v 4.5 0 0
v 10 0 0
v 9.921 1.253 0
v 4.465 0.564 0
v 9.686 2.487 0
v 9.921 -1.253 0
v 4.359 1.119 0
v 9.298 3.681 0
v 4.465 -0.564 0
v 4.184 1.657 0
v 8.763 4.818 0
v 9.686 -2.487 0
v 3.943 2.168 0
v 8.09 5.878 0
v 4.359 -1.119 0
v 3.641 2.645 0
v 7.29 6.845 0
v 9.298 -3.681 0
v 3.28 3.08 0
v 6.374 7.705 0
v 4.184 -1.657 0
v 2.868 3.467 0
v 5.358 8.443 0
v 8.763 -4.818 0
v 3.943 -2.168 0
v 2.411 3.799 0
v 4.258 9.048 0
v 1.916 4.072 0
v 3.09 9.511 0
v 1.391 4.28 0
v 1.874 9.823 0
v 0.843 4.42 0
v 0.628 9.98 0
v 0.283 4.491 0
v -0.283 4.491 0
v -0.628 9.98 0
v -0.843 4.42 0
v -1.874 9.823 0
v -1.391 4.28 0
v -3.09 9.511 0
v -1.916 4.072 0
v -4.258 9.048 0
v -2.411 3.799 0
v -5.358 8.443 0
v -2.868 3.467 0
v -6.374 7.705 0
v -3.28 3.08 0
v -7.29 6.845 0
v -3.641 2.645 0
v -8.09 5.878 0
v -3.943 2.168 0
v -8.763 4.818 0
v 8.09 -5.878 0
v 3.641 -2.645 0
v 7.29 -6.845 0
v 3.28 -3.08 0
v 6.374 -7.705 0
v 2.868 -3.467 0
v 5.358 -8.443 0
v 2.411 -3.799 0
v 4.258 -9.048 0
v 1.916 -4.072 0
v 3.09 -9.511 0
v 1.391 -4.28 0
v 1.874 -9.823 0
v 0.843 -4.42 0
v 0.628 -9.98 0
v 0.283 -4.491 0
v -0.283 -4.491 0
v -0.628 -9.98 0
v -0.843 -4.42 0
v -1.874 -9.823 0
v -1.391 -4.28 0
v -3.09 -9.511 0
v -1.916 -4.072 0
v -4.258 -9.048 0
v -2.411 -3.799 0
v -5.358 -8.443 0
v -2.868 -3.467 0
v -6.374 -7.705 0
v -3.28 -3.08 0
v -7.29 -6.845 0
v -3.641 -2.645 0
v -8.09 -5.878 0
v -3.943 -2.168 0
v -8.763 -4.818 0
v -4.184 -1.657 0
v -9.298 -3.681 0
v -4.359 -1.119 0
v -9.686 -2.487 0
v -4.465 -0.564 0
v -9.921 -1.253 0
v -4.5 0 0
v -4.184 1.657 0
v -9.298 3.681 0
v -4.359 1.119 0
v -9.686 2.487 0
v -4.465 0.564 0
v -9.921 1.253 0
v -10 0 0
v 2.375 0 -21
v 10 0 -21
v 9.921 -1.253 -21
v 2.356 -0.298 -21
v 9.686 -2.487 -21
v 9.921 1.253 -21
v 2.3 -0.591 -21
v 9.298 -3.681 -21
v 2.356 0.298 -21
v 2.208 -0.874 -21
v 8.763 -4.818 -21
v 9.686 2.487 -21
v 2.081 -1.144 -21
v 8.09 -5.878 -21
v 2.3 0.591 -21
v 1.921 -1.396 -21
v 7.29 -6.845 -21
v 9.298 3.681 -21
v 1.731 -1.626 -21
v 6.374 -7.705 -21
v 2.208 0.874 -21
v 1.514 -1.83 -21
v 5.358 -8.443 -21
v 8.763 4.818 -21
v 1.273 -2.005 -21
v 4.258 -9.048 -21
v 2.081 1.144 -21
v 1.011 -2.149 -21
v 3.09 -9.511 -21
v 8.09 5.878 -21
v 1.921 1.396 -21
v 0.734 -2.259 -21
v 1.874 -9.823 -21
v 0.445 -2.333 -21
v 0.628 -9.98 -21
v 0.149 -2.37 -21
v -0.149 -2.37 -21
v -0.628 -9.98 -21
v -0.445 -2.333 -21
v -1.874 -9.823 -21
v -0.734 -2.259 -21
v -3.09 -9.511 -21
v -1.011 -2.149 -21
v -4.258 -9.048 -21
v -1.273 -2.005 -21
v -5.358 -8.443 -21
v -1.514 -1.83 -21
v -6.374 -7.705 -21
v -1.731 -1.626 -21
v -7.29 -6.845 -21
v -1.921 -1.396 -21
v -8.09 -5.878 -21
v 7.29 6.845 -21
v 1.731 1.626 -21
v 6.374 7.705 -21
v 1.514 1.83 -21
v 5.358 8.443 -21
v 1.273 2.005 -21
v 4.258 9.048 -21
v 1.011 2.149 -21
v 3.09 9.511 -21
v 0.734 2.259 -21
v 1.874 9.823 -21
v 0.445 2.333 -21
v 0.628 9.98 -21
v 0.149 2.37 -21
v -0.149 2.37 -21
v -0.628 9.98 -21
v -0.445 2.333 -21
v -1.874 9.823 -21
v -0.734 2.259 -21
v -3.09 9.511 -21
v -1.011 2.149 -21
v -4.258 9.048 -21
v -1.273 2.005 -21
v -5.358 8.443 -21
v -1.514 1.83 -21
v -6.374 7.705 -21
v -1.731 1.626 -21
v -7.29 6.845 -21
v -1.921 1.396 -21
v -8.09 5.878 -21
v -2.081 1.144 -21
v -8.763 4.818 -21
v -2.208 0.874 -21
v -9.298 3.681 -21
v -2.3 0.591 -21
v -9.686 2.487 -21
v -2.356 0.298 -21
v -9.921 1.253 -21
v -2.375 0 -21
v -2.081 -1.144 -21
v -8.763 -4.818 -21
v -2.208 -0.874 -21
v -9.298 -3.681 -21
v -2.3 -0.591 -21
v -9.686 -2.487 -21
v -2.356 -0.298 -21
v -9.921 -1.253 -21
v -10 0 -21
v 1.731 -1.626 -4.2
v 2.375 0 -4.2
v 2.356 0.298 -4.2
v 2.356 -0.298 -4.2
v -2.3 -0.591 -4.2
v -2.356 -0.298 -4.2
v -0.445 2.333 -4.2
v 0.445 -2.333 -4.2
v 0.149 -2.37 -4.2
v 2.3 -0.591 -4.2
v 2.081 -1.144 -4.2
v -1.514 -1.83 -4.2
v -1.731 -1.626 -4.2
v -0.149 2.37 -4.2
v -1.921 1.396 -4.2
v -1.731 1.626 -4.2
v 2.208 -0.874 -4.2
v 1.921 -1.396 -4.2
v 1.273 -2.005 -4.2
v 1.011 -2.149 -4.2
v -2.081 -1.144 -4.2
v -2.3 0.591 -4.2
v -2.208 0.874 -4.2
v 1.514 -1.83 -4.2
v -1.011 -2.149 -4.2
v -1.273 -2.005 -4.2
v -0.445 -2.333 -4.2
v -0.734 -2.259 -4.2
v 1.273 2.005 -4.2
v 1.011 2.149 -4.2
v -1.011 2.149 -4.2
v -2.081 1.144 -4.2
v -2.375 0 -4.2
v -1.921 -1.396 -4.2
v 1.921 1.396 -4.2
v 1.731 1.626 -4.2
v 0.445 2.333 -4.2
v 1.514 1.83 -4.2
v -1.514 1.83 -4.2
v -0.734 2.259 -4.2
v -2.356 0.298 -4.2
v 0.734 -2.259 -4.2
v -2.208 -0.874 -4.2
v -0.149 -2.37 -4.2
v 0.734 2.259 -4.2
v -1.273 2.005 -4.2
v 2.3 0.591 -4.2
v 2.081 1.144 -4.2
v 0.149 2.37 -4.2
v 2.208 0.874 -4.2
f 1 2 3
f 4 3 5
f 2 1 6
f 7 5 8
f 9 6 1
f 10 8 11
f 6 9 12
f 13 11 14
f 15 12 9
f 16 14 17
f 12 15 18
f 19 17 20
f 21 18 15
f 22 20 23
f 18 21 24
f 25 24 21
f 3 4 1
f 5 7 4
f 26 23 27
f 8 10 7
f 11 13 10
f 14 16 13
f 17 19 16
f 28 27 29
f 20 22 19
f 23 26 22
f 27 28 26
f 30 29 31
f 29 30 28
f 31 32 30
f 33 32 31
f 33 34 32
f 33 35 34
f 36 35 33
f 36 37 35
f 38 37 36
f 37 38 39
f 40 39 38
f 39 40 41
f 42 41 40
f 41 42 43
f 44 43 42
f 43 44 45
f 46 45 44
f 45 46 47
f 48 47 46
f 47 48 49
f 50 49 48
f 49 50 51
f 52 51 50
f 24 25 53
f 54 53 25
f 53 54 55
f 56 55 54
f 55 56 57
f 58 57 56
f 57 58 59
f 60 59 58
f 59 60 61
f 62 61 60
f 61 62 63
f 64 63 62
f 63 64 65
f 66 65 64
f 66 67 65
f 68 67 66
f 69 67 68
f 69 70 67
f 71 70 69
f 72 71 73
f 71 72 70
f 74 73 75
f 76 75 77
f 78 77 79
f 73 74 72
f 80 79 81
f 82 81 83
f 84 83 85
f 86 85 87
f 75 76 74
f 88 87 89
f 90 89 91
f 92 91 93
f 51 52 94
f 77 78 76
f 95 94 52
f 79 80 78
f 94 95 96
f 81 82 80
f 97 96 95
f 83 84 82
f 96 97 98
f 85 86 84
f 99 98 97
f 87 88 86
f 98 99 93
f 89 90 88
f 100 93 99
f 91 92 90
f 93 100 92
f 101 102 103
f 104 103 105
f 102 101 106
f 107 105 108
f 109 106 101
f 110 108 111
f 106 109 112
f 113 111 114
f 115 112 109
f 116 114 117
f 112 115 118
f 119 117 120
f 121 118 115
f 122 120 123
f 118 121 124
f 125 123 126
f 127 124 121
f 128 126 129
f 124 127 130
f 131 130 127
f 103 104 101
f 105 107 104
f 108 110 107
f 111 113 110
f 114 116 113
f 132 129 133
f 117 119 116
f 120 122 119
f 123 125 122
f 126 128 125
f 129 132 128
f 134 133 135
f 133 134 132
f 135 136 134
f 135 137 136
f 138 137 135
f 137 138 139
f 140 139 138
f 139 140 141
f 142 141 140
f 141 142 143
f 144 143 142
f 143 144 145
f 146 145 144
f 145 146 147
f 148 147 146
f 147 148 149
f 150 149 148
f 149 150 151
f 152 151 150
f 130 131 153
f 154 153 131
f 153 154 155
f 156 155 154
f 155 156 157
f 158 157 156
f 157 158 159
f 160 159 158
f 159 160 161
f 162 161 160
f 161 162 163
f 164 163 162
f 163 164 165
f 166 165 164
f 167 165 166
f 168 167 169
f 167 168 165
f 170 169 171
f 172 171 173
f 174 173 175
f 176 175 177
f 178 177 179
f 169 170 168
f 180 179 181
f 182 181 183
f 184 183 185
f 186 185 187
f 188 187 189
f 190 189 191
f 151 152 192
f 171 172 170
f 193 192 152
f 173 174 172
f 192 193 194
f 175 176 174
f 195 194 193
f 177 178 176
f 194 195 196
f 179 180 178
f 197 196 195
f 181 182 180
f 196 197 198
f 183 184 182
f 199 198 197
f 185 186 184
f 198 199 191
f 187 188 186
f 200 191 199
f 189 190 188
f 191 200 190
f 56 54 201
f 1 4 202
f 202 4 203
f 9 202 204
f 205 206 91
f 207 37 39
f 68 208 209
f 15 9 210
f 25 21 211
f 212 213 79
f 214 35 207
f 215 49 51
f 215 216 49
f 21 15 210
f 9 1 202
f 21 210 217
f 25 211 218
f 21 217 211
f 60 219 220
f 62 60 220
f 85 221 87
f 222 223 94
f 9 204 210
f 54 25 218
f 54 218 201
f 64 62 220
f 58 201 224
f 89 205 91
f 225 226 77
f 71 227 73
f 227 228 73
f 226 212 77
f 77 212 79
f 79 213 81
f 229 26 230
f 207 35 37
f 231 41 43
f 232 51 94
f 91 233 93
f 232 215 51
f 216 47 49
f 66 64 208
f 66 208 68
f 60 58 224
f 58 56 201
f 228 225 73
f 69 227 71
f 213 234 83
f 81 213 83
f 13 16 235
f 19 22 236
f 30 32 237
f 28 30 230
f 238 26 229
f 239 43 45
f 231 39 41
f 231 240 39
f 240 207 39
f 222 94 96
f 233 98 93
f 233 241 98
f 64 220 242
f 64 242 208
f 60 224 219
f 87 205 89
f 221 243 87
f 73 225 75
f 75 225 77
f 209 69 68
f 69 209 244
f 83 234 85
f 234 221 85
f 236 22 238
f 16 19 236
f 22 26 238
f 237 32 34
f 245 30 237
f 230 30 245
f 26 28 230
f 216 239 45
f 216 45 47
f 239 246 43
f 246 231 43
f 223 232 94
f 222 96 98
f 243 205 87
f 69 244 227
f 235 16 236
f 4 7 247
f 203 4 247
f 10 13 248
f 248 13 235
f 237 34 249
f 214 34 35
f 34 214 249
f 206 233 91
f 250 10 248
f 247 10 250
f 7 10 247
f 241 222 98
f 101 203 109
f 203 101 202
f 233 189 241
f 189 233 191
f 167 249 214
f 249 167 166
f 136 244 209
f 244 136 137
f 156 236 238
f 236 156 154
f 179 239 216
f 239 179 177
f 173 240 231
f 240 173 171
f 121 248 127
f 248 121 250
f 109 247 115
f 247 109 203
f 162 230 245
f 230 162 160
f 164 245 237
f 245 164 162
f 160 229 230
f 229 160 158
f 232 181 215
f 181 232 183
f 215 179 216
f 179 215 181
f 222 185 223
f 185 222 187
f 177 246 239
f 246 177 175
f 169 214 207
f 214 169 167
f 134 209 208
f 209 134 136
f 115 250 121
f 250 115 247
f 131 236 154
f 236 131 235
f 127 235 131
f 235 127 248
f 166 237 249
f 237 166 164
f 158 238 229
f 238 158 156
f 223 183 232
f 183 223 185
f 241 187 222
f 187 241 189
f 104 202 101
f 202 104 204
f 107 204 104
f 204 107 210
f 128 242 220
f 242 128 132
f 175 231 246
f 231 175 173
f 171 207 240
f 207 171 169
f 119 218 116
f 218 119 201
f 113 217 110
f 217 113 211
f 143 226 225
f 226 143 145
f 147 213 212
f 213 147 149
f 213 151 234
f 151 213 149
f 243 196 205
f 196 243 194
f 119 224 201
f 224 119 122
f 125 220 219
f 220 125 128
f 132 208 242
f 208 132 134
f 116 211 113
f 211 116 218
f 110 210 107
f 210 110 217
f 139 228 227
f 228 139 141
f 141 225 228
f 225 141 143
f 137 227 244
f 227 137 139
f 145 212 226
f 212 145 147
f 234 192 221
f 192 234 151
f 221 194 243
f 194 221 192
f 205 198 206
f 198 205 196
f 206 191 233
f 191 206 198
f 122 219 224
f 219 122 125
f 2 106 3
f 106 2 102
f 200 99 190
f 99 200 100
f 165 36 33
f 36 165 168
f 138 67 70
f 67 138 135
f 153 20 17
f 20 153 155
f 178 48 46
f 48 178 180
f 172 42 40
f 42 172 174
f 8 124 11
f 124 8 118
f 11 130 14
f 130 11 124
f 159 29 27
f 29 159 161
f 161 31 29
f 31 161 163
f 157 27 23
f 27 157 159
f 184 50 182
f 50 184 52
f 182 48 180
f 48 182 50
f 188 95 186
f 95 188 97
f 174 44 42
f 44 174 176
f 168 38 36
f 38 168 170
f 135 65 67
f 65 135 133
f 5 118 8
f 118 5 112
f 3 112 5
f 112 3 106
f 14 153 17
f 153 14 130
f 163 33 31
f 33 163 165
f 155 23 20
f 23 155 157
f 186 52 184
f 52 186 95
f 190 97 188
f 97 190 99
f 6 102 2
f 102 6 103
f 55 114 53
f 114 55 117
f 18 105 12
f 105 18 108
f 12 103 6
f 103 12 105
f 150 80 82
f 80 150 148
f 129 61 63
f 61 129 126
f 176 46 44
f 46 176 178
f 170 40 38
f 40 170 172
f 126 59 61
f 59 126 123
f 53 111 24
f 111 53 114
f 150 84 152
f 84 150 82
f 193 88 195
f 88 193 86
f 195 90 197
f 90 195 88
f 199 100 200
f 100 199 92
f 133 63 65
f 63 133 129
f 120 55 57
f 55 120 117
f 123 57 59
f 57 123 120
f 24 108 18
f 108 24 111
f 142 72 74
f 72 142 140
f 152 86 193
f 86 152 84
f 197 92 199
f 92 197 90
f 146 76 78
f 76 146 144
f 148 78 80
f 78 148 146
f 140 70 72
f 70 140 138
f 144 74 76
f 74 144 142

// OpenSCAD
$fn = 50;


difference() {
	union() {
		translate(v = [0, 0, -21.0000000000]) {
			cylinder(h = 21, r = 10.0000000000);
		}
		cylinder(h = 0, r = 13.0000000000);
	}
	union() {
		translate(v = [0, 0, 0]) {
			rotate(a = [0, 0, 0]) {
				difference() {
					union() {
						#translate(v = [0, 0, -21.0000000000]) {
							cylinder(h = 21, r = 2.2500000000);
						}
						#translate(v = [0, 0, -4.2000000000]) {
							cylinder(h = 4.2000000000, r = 10.0000000000, r1 = 2.3750000000, r2 = 4.5000000000);
						}
						#translate(v = [0, 0, -21.0000000000]) {
							cylinder(h = 21, r = 2.3750000000);
						}
						#translate(v = [0, 0, -21.0000000000]) {
							cylinder(h = 21, r = 2.2500000000);
						}
					}
					union();
				}
			}
		}
	}
}
